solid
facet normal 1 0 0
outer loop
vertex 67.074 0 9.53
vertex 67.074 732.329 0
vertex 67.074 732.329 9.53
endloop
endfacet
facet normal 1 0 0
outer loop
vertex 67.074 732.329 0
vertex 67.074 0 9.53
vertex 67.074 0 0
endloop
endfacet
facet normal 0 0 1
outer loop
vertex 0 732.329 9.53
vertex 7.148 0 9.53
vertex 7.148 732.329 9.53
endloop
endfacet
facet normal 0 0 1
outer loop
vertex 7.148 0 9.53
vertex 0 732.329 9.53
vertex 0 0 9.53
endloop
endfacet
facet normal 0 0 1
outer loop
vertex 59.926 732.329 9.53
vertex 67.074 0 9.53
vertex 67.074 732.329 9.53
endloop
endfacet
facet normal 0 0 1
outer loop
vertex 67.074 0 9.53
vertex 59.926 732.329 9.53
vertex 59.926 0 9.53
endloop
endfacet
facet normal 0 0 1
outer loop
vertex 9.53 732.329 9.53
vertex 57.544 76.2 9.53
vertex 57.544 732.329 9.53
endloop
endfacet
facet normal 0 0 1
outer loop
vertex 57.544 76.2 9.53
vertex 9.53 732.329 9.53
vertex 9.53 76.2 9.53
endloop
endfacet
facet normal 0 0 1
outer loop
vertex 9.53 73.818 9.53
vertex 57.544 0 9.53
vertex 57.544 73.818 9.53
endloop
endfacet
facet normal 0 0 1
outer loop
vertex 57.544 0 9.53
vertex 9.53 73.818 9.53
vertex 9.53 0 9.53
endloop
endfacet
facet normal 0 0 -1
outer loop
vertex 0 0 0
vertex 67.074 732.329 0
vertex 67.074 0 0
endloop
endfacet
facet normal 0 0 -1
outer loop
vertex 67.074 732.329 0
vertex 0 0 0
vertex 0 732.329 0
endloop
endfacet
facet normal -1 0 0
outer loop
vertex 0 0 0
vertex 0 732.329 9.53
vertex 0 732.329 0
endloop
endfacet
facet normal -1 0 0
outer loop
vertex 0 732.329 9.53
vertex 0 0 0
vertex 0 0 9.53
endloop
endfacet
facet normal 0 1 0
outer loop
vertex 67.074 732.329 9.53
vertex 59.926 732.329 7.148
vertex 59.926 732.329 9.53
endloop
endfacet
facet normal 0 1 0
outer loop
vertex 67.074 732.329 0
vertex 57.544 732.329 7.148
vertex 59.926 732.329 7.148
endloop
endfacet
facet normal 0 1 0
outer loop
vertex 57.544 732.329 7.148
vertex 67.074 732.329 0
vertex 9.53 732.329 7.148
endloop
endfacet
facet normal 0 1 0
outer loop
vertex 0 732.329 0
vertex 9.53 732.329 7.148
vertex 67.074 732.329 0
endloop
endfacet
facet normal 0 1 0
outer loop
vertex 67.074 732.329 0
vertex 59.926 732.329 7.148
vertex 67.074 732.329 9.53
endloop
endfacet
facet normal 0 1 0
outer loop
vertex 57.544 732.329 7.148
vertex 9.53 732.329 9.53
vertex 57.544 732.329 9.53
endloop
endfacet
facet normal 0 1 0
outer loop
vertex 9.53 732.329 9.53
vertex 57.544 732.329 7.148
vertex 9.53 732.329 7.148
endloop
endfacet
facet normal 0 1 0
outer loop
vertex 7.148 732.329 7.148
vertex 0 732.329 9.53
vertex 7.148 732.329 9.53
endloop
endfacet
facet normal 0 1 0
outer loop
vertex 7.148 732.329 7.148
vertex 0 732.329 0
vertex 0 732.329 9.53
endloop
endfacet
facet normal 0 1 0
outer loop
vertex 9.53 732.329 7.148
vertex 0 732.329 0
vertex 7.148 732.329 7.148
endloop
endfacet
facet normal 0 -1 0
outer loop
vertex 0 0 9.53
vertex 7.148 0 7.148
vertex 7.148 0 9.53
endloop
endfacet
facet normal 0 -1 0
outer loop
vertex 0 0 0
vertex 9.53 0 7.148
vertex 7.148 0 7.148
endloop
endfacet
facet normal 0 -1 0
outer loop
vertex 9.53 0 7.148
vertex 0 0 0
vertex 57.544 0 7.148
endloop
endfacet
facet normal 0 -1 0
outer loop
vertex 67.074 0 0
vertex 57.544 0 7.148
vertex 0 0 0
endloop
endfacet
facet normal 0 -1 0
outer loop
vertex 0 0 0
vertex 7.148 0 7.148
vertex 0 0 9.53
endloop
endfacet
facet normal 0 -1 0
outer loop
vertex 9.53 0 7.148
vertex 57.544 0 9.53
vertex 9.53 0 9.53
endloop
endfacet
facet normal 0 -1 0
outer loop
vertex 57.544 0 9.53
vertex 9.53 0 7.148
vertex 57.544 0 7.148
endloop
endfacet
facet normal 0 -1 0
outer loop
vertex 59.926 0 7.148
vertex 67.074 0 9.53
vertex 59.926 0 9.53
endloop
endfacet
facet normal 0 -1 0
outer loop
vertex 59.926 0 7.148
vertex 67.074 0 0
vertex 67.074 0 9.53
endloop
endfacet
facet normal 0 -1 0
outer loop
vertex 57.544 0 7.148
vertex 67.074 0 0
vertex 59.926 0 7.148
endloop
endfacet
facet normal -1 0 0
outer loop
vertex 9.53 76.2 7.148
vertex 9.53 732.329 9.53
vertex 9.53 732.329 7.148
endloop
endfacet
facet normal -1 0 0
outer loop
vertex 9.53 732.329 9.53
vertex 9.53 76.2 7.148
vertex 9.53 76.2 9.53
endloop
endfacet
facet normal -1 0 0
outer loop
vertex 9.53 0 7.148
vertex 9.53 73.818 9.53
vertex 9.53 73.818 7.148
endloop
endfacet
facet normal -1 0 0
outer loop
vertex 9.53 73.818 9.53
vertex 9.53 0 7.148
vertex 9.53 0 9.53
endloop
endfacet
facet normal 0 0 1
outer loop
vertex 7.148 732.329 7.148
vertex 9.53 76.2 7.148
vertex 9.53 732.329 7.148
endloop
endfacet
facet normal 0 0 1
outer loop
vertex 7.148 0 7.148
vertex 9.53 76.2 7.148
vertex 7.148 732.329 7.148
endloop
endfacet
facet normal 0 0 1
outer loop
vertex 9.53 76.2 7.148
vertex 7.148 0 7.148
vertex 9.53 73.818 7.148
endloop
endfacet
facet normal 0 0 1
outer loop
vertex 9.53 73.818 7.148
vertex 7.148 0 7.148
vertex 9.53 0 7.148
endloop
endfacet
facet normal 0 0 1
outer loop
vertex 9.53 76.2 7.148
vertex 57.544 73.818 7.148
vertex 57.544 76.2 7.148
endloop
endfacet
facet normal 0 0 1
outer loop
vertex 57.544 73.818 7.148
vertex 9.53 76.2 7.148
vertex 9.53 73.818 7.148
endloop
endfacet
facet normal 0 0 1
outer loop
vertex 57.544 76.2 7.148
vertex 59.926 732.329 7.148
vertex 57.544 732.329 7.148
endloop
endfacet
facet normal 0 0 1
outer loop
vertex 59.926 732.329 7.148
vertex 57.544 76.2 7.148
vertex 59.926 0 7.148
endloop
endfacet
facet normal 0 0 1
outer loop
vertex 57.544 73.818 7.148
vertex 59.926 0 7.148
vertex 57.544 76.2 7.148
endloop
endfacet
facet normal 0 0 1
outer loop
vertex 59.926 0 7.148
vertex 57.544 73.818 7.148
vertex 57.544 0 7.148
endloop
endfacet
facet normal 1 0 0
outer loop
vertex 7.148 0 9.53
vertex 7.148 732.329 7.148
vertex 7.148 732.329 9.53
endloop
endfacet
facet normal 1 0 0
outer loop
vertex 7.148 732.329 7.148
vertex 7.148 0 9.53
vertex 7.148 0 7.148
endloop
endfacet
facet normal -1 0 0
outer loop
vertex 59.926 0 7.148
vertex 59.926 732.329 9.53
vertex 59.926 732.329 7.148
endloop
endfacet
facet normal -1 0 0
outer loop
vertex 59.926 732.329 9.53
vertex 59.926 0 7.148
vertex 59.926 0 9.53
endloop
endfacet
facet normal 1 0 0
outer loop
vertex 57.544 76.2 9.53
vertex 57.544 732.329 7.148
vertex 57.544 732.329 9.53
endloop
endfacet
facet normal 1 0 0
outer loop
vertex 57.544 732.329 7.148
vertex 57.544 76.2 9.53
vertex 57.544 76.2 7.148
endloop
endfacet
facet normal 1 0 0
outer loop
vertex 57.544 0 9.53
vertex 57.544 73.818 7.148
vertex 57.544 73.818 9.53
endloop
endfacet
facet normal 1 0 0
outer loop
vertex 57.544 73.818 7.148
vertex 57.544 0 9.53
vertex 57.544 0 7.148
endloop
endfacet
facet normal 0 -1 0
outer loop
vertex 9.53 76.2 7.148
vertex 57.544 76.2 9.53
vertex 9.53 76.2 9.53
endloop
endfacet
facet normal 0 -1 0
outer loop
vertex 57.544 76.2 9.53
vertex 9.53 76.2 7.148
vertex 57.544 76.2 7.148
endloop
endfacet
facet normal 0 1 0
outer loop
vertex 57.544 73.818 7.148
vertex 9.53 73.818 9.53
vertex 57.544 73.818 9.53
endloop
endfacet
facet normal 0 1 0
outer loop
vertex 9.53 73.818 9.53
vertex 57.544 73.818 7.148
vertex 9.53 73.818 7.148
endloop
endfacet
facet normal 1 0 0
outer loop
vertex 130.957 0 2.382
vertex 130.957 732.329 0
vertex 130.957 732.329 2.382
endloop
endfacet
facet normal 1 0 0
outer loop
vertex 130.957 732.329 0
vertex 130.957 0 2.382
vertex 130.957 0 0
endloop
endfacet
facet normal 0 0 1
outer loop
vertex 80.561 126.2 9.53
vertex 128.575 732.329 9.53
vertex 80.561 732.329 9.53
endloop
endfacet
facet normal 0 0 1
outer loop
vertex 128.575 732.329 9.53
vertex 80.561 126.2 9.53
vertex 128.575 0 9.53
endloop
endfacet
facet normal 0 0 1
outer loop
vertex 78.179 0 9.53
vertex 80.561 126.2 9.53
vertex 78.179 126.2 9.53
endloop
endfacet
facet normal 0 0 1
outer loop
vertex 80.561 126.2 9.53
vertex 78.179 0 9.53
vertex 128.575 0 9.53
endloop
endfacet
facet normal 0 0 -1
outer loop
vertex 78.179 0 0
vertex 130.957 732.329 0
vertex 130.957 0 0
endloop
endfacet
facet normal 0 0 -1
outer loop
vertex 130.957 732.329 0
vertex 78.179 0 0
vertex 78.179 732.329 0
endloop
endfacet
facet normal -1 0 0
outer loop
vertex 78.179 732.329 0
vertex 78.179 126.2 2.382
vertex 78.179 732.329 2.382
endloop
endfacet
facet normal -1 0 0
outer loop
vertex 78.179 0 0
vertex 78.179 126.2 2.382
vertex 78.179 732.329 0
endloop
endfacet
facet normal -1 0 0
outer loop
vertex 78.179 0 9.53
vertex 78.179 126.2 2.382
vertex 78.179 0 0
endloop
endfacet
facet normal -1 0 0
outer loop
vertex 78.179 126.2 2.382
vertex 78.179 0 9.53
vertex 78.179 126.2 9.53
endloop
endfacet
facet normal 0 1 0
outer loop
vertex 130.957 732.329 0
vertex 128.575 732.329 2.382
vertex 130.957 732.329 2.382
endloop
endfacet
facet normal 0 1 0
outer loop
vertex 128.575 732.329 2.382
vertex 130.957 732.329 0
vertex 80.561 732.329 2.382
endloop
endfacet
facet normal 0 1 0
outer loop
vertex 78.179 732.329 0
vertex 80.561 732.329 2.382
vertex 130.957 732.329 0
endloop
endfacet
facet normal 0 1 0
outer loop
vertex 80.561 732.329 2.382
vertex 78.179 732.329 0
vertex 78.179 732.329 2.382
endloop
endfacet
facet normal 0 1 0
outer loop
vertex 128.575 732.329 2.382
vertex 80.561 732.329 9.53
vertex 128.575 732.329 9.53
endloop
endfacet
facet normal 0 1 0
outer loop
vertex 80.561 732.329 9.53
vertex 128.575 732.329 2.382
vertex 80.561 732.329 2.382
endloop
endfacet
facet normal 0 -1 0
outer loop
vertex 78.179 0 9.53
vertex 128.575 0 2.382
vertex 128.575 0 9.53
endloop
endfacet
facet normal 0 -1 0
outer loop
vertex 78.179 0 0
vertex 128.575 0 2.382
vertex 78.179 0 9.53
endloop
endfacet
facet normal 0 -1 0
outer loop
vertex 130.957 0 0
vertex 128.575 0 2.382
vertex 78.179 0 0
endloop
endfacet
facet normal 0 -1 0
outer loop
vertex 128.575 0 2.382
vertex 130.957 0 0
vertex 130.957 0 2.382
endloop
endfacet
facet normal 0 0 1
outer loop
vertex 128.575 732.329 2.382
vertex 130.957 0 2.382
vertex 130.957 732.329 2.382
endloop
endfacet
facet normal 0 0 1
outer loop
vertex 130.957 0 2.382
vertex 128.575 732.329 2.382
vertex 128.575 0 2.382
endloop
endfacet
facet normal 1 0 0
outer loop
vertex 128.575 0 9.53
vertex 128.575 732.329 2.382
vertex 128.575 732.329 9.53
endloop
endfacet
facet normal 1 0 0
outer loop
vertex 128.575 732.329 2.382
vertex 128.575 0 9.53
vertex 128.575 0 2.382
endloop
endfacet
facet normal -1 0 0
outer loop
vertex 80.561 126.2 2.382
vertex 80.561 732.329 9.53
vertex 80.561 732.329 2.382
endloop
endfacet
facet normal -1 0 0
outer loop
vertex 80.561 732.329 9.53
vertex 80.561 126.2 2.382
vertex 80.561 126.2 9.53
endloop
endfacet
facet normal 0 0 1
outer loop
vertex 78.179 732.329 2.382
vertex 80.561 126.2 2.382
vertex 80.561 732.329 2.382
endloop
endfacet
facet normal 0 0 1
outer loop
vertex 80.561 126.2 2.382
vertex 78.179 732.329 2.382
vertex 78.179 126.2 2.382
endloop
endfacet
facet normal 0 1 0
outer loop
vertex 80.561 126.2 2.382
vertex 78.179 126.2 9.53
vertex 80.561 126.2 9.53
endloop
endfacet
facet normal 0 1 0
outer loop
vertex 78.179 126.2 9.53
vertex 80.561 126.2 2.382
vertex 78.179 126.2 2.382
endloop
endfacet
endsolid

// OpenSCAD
use <../pipe_parts.scad>


pipe_back(stock_thickness=9.53,
          inner_width=48.0136318583285,
          pipe_length=656.1285392838756,
          foot_cavity_height=76.2,
          dado_width=2.3825,
          dado_depth=2.3825);

// pipe side

translate([78.1786318583285, 0, 0])
pipe_side(stock_thickness=9.53,
          inner_width=48.0136318583285, 
          pipe_length=656.1285392838756, 
          upper_lip_pipe_length=50,
          foot_cavity_height=76.2, 
          dado_width=2.3825, 
          dado_depth=2.3825,
          right=true);
